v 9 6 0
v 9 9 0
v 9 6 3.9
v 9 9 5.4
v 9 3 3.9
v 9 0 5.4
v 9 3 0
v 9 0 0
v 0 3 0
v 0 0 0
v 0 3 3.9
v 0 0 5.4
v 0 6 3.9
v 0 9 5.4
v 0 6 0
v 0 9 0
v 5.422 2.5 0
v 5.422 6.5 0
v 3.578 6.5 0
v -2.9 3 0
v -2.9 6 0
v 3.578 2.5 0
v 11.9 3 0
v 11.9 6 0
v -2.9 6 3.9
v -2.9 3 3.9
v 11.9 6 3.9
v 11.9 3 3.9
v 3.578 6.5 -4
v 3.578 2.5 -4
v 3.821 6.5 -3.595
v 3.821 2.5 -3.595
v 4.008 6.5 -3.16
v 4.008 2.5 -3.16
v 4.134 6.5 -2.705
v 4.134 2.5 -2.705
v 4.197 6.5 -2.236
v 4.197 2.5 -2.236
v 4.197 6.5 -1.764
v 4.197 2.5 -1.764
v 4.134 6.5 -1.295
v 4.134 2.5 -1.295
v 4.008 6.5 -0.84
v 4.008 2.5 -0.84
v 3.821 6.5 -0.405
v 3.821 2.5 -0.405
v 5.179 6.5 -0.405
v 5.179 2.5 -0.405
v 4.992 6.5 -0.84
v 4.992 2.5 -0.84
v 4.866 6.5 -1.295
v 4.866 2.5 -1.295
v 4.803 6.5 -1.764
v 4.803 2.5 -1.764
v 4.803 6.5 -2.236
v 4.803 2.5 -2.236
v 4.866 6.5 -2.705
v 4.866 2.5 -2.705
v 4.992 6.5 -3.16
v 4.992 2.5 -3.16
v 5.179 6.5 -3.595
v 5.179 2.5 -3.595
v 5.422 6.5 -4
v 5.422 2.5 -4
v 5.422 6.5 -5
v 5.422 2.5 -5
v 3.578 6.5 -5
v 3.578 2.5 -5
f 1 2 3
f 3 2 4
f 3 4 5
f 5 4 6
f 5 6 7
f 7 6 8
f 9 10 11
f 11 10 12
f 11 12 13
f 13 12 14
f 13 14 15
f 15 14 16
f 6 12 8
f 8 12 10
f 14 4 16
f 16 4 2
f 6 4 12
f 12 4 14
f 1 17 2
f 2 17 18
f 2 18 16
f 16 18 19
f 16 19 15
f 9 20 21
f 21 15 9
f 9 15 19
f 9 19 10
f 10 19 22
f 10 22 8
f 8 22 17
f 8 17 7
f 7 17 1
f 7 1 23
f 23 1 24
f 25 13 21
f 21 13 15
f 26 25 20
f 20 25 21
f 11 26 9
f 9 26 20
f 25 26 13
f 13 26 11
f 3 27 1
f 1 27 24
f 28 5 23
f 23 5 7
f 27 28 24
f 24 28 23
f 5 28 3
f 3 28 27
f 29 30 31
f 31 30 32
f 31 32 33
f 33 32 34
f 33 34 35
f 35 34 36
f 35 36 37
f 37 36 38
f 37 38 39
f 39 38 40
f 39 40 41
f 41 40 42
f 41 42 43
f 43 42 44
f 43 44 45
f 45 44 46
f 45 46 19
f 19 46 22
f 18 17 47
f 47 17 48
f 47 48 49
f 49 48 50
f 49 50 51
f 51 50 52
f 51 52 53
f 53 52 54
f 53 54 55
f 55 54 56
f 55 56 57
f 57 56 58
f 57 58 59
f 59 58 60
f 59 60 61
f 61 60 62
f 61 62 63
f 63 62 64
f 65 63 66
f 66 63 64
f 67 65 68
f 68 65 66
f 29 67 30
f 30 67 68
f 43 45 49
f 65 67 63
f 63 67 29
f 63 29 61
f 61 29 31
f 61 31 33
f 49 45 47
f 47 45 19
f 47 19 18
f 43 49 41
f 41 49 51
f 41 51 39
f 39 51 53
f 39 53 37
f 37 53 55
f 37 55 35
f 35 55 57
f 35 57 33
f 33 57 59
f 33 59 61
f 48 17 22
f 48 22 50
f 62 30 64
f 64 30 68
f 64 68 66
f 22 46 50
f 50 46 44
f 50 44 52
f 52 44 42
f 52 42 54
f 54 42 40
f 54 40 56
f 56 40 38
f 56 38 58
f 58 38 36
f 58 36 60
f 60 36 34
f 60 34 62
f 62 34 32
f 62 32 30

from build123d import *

# Parameters (mm, degrees)
SKETCH_1_W      = 9
SKETCH_1_H      = 9
EXTRUDE_1_DEPTH = 5.4
SKETCH_2_W      = 2.9
SKETCH_2_H      = 3
EXTRUDE_2_DEPTH = 3.9
EXTRUDE_3_DEPTH = 2


with BuildPart() as part:
    # 스케치1 → 보스-돌출1 (new body)
    with BuildSketch(Plane.XY):
        with Locations((4.5, 4.5)):
            Rectangle(SKETCH_1_W, SKETCH_1_H)
    extrude(amount=EXTRUDE_1_DEPTH)

    # 스케치2 → 보스-돌출2 (add)
    with BuildSketch(Plane(origin=(0, 0, 0), x_dir=(-1, 0, 0), z_dir=(0, 0, -1))):
        with Locations((1.45, 4.5)):
            Rectangle(SKETCH_2_W, SKETCH_2_H)
        with Locations((-10.45, 4.5)):
            Rectangle(SKETCH_2_W, SKETCH_2_H)
    extrude(amount=-EXTRUDE_2_DEPTH)

    # 스케치3 → 보스-돌출3 (add, symmetric)
    with BuildSketch(Plane(origin=(0, 4.5, 0), x_dir=(1, 0, 0), z_dir=(0, 1, 0))):
        with BuildLine():
            Line((3.577763231, 4), (3.577763231, 5))
            Line((3.577763231, 5), (5.422236769, 5))
            Line((5.422236769, 5), (5.422236769, 4))
            ThreePointArc((5.422236769, 4), (4.794518093, 2), (5.422236769, 0))
            Line((5.422236769, 0), (3.577763231, 0))
            ThreePointArc((3.577763231, 0), (4.205481907, 2), (3.577763231, 4))
        make_face()
    extrude(amount=EXTRUDE_3_DEPTH, both=True)


solid = part.part
